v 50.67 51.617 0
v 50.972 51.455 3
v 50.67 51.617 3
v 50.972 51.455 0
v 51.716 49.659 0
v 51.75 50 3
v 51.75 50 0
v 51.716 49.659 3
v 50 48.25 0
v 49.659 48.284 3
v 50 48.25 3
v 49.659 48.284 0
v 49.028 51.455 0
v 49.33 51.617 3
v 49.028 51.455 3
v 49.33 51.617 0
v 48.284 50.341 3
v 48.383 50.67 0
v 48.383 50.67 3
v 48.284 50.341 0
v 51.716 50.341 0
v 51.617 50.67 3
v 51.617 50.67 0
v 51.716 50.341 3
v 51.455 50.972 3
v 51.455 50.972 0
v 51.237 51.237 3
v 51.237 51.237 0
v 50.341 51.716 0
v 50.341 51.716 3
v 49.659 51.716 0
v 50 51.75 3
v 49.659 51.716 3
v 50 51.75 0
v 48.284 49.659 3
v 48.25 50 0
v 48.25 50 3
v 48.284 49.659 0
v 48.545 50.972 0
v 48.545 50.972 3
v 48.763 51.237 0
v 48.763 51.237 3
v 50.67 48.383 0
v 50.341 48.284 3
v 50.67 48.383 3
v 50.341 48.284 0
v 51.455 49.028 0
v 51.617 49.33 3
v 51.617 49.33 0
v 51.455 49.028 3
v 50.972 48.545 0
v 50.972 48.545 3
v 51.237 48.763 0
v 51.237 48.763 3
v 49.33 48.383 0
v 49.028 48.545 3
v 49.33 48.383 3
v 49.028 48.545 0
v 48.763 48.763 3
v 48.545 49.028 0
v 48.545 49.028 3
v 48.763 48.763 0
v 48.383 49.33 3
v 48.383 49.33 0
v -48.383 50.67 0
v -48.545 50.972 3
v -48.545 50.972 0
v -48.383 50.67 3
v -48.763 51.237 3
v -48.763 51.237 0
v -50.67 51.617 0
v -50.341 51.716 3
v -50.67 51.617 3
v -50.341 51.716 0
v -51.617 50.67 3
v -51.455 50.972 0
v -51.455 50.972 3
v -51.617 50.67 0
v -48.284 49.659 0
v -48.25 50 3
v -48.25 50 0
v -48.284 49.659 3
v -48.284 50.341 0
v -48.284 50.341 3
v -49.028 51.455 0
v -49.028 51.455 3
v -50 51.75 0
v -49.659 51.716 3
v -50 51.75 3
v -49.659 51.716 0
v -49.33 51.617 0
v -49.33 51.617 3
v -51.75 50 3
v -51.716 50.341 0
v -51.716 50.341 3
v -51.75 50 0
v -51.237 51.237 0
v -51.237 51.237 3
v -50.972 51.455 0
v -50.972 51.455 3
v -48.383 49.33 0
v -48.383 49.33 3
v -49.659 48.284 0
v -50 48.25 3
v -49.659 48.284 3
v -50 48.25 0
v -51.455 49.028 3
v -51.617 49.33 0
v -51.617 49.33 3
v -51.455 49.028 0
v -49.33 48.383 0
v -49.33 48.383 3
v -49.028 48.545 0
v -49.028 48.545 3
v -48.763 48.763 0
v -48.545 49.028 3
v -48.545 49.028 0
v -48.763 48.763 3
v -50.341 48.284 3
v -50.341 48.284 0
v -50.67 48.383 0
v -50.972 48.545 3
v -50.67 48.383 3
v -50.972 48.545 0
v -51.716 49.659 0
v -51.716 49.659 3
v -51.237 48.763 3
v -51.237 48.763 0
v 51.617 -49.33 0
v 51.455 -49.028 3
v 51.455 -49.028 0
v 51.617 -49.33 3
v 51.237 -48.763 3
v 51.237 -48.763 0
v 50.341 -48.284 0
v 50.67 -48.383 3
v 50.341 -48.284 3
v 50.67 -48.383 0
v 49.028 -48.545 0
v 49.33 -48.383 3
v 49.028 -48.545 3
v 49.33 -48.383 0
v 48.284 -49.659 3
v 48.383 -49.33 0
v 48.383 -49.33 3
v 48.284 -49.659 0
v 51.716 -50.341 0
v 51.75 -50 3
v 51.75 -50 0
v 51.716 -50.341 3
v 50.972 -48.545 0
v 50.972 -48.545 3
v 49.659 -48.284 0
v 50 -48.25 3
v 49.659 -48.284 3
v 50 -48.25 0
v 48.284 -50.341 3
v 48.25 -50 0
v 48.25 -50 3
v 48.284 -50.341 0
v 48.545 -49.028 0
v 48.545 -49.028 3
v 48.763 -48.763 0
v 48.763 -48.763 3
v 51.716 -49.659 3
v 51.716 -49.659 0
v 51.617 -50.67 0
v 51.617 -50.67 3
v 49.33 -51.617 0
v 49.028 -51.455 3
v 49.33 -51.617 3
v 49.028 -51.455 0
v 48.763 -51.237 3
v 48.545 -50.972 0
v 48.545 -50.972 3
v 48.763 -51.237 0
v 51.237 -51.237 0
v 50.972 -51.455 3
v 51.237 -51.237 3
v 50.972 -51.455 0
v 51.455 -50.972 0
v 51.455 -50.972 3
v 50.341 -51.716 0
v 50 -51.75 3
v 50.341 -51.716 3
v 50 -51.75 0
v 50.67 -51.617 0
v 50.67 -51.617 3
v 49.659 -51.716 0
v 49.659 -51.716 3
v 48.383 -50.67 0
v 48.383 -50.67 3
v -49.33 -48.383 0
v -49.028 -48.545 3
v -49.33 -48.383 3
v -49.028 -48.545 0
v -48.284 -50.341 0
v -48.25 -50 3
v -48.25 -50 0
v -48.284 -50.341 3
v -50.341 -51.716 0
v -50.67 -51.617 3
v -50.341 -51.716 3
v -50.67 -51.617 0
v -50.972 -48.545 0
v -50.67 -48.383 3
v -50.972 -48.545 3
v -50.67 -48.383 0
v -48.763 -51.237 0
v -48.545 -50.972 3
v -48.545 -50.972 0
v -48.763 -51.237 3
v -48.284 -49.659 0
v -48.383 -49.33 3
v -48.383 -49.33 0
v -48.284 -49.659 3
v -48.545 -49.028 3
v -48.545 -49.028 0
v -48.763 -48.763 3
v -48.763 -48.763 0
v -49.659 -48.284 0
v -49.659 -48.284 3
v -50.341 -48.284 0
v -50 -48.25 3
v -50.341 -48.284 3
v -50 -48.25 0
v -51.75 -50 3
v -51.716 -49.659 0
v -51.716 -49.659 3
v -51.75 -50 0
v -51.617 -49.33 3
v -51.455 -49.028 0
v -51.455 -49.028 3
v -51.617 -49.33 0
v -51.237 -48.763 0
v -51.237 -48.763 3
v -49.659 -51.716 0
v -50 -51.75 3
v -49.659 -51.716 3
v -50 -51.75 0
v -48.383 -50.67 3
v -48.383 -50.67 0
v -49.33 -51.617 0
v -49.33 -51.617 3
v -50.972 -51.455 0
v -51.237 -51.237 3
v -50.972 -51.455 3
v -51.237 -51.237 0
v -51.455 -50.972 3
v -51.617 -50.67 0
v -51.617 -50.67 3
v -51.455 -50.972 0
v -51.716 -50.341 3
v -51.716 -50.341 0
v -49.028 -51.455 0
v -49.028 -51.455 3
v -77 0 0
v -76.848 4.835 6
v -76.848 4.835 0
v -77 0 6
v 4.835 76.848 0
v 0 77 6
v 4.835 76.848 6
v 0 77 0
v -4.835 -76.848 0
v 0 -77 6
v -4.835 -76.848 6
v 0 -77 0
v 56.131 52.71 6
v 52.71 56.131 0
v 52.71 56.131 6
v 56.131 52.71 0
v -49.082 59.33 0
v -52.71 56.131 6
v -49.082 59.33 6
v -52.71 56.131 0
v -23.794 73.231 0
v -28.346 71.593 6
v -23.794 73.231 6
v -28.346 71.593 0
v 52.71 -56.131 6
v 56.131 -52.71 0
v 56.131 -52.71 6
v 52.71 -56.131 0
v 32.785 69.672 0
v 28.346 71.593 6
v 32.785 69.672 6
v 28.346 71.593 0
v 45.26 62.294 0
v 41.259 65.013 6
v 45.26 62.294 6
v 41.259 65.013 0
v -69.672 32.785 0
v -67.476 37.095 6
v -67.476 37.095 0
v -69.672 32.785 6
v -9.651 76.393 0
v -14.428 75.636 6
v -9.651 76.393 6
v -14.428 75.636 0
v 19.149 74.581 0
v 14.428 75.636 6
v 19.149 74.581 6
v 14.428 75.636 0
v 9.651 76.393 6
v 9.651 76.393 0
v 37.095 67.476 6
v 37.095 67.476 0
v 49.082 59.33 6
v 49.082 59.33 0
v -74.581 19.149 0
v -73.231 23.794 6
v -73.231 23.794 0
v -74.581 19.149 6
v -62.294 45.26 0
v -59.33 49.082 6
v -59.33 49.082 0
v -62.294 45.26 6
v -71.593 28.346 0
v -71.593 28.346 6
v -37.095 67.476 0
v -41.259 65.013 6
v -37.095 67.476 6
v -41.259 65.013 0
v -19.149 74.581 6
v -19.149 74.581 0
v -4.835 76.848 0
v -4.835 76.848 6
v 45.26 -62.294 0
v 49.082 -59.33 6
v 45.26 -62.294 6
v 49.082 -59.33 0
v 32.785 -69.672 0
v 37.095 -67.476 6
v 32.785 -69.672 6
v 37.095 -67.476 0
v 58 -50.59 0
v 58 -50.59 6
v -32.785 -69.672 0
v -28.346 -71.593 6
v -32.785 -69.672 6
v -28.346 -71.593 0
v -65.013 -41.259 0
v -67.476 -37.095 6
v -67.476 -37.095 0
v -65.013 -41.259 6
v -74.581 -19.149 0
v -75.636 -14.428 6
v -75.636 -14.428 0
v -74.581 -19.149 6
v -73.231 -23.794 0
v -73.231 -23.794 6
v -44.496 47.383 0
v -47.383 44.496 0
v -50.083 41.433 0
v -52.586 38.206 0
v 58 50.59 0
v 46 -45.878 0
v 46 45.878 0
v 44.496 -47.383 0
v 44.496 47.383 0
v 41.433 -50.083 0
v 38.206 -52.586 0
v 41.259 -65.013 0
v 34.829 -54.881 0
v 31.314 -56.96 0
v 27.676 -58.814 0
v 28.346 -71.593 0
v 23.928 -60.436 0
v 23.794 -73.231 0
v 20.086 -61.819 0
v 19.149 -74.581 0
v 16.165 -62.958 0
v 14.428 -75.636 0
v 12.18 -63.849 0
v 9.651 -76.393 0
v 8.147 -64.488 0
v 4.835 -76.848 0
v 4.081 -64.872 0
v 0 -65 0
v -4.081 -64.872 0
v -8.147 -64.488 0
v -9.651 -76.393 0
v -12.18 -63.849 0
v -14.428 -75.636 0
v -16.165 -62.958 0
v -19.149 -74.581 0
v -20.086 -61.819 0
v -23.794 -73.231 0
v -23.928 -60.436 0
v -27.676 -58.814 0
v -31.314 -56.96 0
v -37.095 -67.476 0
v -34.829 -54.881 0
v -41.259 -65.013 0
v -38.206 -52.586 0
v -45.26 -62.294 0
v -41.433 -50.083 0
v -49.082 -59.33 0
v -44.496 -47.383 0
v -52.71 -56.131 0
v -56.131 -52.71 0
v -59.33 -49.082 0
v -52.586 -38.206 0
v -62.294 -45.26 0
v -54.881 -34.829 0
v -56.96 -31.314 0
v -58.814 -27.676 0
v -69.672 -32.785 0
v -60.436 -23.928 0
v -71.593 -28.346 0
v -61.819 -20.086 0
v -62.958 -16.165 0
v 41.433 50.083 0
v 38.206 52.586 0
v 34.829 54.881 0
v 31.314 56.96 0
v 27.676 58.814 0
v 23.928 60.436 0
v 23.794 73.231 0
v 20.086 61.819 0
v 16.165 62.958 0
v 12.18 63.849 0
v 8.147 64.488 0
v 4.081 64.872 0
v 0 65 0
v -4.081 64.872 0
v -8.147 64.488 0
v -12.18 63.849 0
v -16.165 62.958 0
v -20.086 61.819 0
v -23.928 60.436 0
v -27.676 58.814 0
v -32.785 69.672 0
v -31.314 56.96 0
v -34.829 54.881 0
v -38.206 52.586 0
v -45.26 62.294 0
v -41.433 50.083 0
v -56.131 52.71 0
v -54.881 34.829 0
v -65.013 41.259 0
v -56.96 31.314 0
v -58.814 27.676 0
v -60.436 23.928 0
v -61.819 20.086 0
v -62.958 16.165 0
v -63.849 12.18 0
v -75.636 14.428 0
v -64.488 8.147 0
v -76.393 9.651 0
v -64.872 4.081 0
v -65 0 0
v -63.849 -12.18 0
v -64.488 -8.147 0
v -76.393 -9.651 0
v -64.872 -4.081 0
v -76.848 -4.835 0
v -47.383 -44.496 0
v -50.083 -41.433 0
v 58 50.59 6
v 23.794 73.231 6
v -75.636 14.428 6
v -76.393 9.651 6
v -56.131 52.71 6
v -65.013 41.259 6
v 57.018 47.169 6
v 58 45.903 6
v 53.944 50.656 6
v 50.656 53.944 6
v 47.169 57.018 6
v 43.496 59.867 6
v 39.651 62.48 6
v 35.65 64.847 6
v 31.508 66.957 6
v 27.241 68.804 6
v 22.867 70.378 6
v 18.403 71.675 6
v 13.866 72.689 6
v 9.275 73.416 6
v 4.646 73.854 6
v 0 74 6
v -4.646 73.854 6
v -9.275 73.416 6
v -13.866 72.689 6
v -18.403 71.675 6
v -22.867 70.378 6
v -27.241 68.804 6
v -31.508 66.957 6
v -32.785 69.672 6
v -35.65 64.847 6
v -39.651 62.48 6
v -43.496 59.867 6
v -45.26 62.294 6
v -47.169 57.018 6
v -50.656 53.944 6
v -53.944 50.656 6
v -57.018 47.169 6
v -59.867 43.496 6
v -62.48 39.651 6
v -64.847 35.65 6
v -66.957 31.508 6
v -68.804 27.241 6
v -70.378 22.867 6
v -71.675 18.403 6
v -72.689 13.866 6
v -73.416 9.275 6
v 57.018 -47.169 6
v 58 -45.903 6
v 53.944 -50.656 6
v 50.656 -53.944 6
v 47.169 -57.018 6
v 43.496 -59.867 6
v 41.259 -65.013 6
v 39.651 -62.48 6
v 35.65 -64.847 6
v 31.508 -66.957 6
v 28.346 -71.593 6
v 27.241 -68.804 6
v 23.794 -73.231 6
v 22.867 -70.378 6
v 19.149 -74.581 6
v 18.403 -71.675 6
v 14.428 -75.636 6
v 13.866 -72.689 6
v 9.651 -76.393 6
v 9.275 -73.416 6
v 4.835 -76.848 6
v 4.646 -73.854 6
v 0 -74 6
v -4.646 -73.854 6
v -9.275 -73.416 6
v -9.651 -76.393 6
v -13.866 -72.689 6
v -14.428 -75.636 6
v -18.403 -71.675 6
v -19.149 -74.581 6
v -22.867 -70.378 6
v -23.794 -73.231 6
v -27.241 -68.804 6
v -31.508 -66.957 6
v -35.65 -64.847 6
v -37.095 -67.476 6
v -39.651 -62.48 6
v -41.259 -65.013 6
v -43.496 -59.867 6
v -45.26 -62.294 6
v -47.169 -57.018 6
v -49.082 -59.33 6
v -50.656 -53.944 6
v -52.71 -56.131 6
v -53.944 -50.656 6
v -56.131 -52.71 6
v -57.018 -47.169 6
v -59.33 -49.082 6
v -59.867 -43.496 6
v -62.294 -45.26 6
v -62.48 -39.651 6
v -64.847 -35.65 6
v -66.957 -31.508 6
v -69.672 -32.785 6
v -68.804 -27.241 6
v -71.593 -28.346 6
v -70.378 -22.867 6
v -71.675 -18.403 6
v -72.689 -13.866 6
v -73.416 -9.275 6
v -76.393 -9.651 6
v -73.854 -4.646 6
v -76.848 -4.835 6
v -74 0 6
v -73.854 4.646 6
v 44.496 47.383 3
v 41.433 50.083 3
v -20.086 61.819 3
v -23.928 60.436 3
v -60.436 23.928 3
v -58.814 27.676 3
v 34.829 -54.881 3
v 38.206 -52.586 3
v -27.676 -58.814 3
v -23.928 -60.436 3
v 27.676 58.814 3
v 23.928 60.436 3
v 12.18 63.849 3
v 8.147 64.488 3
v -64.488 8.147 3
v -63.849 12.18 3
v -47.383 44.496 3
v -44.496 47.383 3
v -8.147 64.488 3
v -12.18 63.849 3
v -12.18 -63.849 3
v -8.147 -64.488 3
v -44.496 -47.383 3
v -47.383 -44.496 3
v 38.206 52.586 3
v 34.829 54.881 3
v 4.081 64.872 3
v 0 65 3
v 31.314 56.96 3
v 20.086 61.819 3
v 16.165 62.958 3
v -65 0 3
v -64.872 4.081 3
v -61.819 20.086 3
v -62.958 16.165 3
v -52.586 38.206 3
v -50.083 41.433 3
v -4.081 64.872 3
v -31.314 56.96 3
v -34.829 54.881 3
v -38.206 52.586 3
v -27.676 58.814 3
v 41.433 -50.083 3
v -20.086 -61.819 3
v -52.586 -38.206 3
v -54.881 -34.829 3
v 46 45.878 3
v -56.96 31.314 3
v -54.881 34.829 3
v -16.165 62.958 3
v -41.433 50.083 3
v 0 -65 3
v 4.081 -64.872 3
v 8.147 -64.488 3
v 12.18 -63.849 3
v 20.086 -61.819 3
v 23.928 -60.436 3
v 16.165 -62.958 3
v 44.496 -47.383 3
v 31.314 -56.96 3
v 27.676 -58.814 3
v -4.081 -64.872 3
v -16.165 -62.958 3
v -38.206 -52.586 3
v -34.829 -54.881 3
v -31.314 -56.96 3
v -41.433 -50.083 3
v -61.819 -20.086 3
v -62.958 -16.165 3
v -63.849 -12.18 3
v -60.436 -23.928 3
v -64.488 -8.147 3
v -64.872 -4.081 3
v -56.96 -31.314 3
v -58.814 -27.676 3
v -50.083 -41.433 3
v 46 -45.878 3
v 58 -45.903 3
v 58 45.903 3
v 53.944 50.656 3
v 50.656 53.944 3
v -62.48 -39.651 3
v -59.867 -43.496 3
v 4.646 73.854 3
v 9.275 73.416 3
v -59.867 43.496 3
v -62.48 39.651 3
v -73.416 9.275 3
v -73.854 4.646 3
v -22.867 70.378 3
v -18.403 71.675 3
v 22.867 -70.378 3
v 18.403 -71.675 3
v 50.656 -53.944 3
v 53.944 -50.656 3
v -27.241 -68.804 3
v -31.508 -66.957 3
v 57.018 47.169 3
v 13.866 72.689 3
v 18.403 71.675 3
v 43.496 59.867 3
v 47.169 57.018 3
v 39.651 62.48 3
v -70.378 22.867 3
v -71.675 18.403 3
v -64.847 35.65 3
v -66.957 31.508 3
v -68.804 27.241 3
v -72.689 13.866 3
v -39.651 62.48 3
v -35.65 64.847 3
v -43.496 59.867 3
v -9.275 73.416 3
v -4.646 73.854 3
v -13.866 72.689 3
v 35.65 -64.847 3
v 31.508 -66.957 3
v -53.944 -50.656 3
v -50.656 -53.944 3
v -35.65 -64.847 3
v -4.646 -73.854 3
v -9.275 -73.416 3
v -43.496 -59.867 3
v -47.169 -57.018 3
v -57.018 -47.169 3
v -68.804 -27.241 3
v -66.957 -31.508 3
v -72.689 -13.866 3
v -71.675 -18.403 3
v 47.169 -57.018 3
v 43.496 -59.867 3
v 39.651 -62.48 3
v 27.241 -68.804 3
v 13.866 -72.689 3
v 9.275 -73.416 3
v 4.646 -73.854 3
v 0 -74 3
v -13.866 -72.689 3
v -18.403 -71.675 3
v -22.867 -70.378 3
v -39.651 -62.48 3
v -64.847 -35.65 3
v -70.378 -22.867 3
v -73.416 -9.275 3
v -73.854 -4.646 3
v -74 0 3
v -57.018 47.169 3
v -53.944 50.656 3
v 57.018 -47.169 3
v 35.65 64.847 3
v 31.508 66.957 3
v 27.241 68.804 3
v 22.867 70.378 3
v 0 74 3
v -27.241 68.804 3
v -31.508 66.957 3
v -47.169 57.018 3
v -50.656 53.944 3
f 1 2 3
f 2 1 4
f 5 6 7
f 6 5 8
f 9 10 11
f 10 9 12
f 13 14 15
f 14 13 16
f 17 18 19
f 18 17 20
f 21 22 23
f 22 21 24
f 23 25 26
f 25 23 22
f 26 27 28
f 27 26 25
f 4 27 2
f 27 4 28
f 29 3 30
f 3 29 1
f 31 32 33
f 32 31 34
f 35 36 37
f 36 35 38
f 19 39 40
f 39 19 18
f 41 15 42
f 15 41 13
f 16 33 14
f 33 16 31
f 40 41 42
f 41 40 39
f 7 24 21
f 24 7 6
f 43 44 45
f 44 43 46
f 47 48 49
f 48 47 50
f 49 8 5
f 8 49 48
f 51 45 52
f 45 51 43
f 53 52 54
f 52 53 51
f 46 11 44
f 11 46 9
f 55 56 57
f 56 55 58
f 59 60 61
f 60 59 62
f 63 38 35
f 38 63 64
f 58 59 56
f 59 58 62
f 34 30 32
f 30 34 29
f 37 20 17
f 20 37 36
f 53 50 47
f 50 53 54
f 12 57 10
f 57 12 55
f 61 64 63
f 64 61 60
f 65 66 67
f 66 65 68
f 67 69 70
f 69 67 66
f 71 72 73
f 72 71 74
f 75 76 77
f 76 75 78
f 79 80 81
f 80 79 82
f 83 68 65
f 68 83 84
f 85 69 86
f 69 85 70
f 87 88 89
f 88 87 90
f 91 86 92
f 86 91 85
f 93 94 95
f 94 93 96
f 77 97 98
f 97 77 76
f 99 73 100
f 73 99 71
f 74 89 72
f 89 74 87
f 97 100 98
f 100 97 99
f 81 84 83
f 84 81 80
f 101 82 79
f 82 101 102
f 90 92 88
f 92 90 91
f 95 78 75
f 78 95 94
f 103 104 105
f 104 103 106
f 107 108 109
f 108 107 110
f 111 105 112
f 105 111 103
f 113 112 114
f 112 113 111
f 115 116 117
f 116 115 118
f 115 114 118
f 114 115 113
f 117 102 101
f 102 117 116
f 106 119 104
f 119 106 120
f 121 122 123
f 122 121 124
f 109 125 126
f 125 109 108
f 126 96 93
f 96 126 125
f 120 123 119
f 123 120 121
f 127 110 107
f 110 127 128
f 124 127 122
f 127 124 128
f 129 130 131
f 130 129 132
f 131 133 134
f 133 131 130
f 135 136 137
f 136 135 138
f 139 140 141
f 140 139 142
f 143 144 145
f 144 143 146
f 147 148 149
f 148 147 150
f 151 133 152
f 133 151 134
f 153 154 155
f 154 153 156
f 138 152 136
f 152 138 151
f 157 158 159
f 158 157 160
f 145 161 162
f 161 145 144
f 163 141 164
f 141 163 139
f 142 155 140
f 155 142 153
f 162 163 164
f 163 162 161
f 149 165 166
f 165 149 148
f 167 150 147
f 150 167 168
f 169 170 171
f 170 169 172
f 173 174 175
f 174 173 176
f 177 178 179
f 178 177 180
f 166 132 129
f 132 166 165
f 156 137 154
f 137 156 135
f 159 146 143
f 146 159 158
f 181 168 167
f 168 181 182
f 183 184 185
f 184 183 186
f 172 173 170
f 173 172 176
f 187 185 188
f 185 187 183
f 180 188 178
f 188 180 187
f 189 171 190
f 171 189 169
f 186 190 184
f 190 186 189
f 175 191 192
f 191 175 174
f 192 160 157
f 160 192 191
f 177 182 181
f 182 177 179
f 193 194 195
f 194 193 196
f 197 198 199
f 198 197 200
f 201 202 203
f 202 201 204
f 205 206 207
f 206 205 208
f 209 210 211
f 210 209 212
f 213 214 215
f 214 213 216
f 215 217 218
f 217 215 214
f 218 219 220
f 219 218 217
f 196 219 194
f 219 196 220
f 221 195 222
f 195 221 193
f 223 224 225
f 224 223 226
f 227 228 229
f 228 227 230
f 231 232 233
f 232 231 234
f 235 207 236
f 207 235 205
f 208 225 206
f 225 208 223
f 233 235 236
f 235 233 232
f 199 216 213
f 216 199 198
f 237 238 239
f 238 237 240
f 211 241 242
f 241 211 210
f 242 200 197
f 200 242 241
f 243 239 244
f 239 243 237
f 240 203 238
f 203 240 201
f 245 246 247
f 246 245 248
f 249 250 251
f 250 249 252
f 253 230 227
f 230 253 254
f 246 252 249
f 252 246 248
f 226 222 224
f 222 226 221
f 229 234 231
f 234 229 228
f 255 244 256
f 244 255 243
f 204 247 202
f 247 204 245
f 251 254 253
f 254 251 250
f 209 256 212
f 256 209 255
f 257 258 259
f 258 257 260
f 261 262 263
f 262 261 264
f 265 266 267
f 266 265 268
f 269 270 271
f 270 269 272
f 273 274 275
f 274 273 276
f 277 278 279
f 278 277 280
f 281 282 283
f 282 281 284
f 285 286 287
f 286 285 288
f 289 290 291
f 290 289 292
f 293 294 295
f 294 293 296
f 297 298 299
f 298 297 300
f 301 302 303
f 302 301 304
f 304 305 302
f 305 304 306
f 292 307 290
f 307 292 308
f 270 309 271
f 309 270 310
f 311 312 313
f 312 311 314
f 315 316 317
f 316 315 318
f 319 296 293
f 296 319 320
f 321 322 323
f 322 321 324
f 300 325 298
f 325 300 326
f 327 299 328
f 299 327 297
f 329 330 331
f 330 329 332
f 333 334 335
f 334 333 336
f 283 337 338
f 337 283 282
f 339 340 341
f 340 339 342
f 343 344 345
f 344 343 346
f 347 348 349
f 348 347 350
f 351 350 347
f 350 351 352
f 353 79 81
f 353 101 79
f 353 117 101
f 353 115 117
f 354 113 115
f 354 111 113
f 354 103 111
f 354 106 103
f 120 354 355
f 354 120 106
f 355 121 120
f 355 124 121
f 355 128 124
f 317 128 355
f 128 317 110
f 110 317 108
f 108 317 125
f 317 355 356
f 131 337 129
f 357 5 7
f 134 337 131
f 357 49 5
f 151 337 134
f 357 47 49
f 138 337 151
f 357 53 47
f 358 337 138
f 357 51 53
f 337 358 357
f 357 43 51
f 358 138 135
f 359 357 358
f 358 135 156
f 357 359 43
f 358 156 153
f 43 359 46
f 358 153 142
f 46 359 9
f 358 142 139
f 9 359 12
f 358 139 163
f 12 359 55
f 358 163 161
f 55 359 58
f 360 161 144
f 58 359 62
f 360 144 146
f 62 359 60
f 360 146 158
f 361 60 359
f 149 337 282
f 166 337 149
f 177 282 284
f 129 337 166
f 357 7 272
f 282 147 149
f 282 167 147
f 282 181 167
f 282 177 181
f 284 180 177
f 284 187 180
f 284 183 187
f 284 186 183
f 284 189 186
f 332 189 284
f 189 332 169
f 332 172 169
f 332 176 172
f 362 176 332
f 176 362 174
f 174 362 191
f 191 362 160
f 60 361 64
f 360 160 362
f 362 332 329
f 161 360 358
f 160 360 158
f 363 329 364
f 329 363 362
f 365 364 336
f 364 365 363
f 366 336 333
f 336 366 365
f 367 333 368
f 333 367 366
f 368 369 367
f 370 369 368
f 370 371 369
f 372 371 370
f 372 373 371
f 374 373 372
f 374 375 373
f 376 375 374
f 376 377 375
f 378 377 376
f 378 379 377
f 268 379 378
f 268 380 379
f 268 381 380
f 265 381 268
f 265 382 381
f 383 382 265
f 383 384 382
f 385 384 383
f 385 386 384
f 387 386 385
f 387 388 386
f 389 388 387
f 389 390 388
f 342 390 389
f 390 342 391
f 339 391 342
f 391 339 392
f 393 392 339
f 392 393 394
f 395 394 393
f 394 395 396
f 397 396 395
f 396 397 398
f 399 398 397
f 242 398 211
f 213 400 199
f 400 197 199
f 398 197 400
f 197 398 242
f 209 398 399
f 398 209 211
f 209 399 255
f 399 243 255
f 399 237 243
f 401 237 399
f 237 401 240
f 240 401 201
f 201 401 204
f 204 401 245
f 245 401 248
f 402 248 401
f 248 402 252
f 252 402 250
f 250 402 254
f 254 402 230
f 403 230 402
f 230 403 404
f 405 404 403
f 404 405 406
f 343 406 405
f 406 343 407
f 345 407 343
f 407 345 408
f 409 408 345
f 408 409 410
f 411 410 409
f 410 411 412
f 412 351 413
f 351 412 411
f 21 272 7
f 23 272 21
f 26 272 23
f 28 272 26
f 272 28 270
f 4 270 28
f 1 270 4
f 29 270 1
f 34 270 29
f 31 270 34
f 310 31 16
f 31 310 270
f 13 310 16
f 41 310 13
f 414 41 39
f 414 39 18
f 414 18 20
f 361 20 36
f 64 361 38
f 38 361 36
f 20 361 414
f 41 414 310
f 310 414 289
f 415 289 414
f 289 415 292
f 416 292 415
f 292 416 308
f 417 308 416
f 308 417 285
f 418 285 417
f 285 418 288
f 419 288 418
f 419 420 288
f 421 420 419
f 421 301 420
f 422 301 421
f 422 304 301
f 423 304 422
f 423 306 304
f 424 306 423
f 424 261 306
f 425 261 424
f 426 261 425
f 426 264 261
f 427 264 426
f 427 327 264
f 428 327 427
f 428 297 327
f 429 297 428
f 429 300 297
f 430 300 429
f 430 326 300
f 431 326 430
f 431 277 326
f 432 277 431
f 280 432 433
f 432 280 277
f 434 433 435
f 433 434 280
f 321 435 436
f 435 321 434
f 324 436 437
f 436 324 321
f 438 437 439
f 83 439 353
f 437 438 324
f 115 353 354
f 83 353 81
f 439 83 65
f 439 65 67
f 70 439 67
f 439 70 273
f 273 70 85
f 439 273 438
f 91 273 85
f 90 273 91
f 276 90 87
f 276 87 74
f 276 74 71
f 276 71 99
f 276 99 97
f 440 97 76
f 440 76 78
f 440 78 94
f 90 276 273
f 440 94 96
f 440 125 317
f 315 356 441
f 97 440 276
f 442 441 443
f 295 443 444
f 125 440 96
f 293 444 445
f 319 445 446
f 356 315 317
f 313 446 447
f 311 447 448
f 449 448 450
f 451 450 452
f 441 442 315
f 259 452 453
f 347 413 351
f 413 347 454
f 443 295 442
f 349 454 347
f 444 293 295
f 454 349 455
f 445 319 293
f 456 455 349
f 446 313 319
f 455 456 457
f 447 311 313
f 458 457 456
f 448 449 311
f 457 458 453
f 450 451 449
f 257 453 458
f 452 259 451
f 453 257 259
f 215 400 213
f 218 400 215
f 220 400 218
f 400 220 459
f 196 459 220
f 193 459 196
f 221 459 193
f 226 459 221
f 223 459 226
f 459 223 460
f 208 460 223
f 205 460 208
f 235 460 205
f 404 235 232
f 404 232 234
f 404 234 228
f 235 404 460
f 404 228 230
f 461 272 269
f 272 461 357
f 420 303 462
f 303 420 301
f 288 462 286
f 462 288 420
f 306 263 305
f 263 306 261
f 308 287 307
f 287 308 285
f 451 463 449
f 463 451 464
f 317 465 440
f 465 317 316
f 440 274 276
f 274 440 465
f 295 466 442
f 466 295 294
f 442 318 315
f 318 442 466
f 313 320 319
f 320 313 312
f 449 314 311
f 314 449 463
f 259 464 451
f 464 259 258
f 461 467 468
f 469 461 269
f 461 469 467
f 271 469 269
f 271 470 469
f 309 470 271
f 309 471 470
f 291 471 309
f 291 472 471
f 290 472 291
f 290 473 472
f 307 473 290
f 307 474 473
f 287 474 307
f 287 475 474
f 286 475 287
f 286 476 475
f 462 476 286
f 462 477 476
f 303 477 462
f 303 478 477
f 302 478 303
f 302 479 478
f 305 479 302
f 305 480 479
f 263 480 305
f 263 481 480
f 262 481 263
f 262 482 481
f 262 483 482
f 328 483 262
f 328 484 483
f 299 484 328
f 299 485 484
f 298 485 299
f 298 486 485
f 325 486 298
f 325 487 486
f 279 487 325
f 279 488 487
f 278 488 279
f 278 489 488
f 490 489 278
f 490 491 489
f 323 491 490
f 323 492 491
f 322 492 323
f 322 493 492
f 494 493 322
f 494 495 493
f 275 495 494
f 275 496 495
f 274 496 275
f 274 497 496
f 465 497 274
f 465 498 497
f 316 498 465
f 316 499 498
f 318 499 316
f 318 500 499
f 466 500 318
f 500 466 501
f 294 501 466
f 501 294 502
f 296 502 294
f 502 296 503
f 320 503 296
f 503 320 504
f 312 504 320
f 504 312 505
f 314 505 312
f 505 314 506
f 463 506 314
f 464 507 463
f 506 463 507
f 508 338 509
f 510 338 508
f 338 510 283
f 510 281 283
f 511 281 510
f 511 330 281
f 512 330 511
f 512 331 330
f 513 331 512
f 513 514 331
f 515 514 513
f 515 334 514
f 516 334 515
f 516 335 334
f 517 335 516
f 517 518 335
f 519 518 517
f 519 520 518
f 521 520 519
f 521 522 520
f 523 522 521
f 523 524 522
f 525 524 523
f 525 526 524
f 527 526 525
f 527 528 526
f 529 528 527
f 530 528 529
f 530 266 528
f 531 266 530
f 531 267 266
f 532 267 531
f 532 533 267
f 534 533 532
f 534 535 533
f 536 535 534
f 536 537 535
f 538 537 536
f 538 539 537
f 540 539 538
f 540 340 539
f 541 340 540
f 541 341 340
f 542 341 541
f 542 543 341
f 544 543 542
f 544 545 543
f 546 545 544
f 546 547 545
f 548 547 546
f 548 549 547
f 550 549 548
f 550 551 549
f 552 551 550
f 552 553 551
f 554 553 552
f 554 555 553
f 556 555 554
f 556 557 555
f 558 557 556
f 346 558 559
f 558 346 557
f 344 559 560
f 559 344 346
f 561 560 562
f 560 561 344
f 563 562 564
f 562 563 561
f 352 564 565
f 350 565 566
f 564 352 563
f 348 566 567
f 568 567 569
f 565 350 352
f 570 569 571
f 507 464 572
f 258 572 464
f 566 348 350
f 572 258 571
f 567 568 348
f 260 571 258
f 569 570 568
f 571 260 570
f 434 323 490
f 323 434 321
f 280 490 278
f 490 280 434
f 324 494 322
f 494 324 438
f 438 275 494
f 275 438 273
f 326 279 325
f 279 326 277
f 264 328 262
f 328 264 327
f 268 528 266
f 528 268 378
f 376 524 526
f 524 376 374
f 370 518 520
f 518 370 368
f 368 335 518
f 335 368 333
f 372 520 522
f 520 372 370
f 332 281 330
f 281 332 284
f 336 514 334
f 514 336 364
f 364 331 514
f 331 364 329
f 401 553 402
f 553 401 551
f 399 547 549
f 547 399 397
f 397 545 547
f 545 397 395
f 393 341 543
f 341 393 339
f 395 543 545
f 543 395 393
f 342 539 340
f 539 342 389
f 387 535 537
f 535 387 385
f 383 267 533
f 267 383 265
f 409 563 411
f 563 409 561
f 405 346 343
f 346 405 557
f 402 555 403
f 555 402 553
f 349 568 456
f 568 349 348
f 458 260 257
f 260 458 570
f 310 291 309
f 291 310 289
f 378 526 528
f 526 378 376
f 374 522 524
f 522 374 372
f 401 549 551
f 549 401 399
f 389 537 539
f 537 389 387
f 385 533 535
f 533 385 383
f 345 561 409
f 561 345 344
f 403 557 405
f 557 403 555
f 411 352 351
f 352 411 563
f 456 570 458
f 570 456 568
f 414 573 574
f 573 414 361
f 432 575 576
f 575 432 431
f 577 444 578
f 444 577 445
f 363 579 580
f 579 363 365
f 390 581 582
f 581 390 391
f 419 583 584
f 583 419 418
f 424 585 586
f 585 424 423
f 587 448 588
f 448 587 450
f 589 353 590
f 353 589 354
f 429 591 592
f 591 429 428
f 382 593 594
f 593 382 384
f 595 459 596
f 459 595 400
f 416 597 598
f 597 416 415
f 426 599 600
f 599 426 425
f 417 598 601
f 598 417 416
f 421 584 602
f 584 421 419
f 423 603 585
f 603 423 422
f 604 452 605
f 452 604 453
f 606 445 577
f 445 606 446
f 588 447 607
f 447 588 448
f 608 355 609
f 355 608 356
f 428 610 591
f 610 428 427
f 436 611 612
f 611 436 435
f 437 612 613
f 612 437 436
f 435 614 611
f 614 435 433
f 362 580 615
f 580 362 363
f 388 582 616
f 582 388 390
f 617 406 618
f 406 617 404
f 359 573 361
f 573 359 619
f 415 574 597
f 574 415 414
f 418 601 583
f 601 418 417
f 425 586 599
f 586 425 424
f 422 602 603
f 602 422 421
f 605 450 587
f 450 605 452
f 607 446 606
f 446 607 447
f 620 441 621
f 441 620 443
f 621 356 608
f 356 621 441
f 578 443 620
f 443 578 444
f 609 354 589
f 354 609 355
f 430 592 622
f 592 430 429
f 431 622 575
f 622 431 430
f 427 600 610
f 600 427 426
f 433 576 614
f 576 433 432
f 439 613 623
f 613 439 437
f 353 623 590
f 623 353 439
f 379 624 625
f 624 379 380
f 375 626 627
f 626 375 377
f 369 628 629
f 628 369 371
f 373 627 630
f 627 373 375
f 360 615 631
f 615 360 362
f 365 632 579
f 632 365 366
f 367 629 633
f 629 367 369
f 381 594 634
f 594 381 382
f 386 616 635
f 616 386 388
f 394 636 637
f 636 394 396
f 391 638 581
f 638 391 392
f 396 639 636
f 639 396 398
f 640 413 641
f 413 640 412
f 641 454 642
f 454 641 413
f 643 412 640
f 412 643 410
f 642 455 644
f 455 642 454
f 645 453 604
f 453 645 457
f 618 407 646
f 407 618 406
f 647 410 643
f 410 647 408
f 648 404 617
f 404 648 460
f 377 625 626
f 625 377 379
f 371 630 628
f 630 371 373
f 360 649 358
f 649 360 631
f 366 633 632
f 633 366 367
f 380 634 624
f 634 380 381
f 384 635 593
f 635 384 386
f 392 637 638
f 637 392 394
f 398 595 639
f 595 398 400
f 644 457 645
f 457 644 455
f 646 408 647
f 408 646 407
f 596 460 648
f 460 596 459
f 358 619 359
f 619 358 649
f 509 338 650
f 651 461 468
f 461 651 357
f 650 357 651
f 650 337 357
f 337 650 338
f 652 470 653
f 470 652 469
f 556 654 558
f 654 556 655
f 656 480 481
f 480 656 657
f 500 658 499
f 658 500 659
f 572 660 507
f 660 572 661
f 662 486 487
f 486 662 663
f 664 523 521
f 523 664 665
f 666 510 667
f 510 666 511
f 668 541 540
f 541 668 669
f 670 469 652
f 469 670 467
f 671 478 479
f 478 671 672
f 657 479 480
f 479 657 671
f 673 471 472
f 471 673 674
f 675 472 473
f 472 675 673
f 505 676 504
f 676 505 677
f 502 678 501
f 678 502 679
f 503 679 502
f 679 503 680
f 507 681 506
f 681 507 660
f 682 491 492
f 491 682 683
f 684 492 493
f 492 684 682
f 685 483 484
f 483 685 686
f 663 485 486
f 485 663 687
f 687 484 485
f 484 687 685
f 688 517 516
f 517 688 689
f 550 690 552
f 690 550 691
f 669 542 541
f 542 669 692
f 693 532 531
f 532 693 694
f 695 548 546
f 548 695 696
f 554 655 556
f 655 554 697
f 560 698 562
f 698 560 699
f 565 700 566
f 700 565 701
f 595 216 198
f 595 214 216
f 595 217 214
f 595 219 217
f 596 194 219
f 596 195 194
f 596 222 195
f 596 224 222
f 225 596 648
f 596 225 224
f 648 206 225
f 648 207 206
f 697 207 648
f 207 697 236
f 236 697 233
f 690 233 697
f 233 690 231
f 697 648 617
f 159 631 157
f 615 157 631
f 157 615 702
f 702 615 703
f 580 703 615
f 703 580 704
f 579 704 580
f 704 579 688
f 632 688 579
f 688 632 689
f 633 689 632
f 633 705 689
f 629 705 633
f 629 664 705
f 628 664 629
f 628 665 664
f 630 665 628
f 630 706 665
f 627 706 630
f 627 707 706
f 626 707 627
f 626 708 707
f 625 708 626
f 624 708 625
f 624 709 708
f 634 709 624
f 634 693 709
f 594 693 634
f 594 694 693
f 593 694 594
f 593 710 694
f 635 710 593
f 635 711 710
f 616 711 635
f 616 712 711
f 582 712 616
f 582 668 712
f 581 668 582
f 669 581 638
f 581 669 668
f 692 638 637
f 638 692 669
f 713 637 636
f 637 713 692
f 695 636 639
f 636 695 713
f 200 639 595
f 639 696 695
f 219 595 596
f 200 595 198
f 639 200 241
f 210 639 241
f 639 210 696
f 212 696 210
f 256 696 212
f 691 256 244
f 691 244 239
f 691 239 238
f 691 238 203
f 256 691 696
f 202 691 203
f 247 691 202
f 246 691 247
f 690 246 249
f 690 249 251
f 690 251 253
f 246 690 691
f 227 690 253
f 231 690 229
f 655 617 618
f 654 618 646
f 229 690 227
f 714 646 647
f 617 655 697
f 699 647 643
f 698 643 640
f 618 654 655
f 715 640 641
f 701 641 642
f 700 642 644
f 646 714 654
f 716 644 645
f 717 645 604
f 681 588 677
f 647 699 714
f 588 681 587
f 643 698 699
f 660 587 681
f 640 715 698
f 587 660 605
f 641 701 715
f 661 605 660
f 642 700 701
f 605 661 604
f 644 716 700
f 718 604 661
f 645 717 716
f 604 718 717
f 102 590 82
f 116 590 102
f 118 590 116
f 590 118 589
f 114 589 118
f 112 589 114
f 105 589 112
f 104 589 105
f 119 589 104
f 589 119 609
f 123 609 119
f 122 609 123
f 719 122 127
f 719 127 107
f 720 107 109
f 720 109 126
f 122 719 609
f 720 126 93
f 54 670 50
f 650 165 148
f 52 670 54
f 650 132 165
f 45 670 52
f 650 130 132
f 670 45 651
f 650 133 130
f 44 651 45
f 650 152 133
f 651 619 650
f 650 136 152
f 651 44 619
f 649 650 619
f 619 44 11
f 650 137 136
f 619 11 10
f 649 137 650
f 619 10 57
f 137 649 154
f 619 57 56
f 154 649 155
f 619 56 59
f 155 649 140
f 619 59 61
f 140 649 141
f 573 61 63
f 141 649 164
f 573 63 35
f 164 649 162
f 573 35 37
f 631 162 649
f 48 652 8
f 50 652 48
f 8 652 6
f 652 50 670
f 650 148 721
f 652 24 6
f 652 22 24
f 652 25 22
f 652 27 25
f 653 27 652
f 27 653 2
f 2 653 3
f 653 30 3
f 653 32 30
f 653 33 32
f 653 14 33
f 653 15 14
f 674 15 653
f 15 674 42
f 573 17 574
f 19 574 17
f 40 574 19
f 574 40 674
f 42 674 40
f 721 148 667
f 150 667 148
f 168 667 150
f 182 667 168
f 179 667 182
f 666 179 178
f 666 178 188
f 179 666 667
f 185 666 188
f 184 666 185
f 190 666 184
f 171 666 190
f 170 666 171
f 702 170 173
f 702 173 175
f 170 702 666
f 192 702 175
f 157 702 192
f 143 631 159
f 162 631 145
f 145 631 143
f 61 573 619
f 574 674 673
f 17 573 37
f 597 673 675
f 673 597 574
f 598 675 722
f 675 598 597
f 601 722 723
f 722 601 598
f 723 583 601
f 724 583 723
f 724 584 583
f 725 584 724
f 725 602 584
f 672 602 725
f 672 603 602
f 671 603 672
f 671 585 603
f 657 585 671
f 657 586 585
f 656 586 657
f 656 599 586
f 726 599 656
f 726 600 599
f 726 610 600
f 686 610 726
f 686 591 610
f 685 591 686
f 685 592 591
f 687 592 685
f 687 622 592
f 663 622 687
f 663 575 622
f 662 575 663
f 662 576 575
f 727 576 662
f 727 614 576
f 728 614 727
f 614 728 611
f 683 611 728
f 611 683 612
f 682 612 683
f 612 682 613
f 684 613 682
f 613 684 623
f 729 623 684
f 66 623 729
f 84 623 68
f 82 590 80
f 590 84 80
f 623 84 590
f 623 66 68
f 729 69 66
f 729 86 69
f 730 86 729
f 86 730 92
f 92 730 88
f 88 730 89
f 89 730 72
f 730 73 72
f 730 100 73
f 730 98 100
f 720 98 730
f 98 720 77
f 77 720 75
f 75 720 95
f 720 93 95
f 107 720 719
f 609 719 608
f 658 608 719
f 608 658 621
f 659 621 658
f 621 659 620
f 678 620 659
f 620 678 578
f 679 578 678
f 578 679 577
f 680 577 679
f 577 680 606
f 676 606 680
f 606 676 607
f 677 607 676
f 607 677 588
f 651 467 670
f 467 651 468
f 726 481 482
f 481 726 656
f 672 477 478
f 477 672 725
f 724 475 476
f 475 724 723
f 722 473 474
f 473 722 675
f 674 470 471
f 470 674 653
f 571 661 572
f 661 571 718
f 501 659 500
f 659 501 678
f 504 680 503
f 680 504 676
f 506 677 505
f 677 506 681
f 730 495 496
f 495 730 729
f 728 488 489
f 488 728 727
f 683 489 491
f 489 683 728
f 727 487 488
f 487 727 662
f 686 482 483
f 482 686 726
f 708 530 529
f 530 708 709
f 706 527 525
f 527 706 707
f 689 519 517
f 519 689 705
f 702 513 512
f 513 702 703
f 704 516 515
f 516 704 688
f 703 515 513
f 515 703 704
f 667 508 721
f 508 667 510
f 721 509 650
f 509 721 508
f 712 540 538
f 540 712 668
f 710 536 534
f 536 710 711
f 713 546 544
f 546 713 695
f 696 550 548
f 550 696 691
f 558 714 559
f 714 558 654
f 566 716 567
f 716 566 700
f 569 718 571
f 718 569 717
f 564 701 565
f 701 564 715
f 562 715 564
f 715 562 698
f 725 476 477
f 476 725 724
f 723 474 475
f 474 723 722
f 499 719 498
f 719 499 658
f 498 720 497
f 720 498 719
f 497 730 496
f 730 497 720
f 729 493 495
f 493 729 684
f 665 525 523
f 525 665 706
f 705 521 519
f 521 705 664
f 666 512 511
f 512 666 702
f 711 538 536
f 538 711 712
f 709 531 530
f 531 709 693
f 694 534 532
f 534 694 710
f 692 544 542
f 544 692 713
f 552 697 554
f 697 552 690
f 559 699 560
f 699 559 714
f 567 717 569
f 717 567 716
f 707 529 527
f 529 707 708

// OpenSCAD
module led5050()
{
    // 5050 SMD LED
    // Body
    color("white")
        difference()
        {
            translate([-2.5,-2.5,0.1])
                    cube([5,5,1.6]);
            translate([-2.7,-2.7,2])        
                rotate([0,0,45])        
                    cube([2,2,1],center=true);
        }

    // Yellow spot    
    translate([0,0,0.701])
        color("yellow")
            cylinder(h=1,r=2,$fn=100);

    // Pin
    color("gray")
        for(i=[-1.6,0,1.6])
            for(j=[-1,1])
            {
                translate([j * 2.2,i,0.1])
                    cube([1,1,0.2],center=true);
                translate([j * 2.6,i,0.4])
                    cube([0.2,1,0.8],center = true);
            }
}

b = 15;
h = 15;
w = 3;

/*
// loudspeaker plate
difference()
{
union()
{
    difference()
    {
        cylinder(h=50,d=160,$fn=100);
        translate([0,0,3])
            cylinder(h=47.001,d=154,$fn=100);
        // assembly holes
        for(i = [[50,50,-1],[-50,50,-1],[50,-50,-1],[-50,-50,-1]])
            translate(i)
                cylinder(h=7,d=3.5,$fn=32);
        // loudspeaker mounting holes
        for(i = [[41,41,-1],[-41,41,-1],[41,-41,-1],[-41,-41,-1]])
            translate(i)
                cylinder(h=7,d=4.5,$fn=32);
        // back plate cutout
        translate([61,-60,3])
            cube([20,120,50]);

        translate([0,0,-0.5])
            cylinder(h=4,d=92,$fn=100);
    }
    // back plate
    translate([58,-51,0])
        cube([3,5,50]);
    translate([59.5,-46,3])
        // Extruded triangle
        rotate(a=[90,-90,-90])
            linear_extrude(height = w, center = true, convexity = 10, twist = 0)
                polygon(points=[[0,0],[h,0],[0,b]], paths=[[0,1,2]]);
    translate([58,46,0])
        cube([3,5,50]);
    translate([58,-51,0])
        cube([3,102,8]);
    translate([59.5,46,3])
        // Extruded triangle
        rotate(a=[90,-90,90])
            linear_extrude(height = w, center = true, convexity = 10, twist = 0)
                polygon(points=[[0,0],[h,0],[0,b]], paths=[[0,1,2]]);

    // cylinder(h=3, d= 20, $fn=100);
    for(i=[0:4])
    {
        difference()
        {
            cylinder(h=3, d=84-i*16, $fn=100);
            translate([0,0,-0.5])
                cylinder(h=4, d=76-i*16, $fn=100);
        }
    }
    for(i=[0:7])
        rotate([0,0,i*45])
            translate([-2,6,0])
                cube([4,40,3]);
}
translate([56,-44,10])
    rotate(a=[0,90,0])
        cylinder(h=7,d=2.5,$fn=100);
translate([56,44,10])
    rotate(a=[0,90,0])
        cylinder(h=7,d=2.5,$fn=100);
}
*/
// PSU plate
rh = 6;
difference()
{
    union()
    {
        difference()
        {
            cylinder(h=rh,d=154,$fn=100);
            // assembly holes
            for(i = [[50,50,-0.5],[-50,50,-0.5],[50,-50,-0.5],[-50,-50,-0.5]])
                translate(i)
                    cylinder(h=rh+1,d=3.5,$fn=32);
            // bottom hole
            translate([0,0,-0.5])
                cylinder(h=rh+1,d=130,$fn=100);
        }
        // back bottom support
        translate([46,-48,0])
            cube([12,96,rh]);
    }
    // back plate cutout
    translate([58,-60,-0.5])
        cube([20,120,rh+1]);
    translate([0,0,3])
        cylinder(h=rh-2.5,d=148,$fn=100);
}



/*
// PSU
rotate([0,0,5])
    difference()
    {
            translate([-50,-49,8])
                color("gray")
                    cube([100,98,37]);
        translate([-26,3,7.5])
            cylinder(h=40,d=3,$fn=20);
        translate([29,3,7.5])
            cylinder(h=40,d=3,$fn=20);
    }
*/


/*
translate([0,0,200])
{
// Holder ring
difference()
{
    cylinder(h=5,d=160,$fn=100);
    translate([0,0,-0.001])
    cylinder(h=111, d1=114, d2=80, $fn=100);
    for(i = [[50,50,-1],[-50,50,-1],[50,-50,-1],[-50,-50,-1]])
        translate(i)
            cylinder(h=7,d=3.5,$fn=100);
}



// Transparent hull
color("azure",0.5)
    %difference()
    {
        cylinder(h=111,d1=114, d2=80,$fn=100);
        translate([0,0,-0.001])
            cylinder(h=96,d1=104, d2=70,$fn=100);
        cube([150,150,150]);
    }
    
// Top and bottom boards
color("green")
{
    cylinder(h=1.6,d=90,$fn=100);
    translate([0,0,92])
        cylinder(h=1.6,d=60,$fn=100);
}

// Neopixel light panels
 for(i=[0:22.5:350])
    rotate([0,0,i])
        translate([-46,0,0])
            rotate([0,-81,0])
                translate([0,-6,0])
                {
                     color("green")
                        cube([95,12,1.6]);
                     for(j=[9:8.5:90])
                         translate([j,6,1.6])
                            rotate([0,0,90])
                                led5050();
                }
}
*/
